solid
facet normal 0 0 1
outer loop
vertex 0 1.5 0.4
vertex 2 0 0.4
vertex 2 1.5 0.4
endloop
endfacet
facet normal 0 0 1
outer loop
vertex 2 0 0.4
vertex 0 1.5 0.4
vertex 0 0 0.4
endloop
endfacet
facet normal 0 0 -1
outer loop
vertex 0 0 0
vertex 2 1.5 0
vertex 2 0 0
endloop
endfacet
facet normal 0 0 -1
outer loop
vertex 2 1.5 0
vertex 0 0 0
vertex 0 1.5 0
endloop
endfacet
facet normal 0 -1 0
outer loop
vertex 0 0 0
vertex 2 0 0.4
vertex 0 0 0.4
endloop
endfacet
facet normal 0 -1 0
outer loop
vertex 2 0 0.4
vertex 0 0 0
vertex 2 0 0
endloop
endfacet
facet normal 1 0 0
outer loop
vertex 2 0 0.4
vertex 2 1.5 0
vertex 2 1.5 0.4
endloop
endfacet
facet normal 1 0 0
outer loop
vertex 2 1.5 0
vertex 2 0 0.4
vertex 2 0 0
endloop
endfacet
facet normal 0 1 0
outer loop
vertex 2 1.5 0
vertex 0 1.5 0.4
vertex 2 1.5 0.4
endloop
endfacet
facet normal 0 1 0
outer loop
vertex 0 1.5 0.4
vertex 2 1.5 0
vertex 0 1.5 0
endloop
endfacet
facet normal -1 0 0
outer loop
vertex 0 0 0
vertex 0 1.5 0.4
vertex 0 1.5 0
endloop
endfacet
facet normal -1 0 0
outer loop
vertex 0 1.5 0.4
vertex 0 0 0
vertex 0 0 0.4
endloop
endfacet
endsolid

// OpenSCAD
/* Warning, this is a very basic generator with a lot of approximation 
input data : [XDFN, QGB, 2x1.5x0.4mm, 2, , A, C04-21366A]
generated by com.zoubworld.electronics.cad.model3d.Basic
Date : Sun Feb 15 10:50:49 CET 2026
*/

//body
color("black")
translate([0,0,0])
cube([2.0,1.5,0.4], center=false);
